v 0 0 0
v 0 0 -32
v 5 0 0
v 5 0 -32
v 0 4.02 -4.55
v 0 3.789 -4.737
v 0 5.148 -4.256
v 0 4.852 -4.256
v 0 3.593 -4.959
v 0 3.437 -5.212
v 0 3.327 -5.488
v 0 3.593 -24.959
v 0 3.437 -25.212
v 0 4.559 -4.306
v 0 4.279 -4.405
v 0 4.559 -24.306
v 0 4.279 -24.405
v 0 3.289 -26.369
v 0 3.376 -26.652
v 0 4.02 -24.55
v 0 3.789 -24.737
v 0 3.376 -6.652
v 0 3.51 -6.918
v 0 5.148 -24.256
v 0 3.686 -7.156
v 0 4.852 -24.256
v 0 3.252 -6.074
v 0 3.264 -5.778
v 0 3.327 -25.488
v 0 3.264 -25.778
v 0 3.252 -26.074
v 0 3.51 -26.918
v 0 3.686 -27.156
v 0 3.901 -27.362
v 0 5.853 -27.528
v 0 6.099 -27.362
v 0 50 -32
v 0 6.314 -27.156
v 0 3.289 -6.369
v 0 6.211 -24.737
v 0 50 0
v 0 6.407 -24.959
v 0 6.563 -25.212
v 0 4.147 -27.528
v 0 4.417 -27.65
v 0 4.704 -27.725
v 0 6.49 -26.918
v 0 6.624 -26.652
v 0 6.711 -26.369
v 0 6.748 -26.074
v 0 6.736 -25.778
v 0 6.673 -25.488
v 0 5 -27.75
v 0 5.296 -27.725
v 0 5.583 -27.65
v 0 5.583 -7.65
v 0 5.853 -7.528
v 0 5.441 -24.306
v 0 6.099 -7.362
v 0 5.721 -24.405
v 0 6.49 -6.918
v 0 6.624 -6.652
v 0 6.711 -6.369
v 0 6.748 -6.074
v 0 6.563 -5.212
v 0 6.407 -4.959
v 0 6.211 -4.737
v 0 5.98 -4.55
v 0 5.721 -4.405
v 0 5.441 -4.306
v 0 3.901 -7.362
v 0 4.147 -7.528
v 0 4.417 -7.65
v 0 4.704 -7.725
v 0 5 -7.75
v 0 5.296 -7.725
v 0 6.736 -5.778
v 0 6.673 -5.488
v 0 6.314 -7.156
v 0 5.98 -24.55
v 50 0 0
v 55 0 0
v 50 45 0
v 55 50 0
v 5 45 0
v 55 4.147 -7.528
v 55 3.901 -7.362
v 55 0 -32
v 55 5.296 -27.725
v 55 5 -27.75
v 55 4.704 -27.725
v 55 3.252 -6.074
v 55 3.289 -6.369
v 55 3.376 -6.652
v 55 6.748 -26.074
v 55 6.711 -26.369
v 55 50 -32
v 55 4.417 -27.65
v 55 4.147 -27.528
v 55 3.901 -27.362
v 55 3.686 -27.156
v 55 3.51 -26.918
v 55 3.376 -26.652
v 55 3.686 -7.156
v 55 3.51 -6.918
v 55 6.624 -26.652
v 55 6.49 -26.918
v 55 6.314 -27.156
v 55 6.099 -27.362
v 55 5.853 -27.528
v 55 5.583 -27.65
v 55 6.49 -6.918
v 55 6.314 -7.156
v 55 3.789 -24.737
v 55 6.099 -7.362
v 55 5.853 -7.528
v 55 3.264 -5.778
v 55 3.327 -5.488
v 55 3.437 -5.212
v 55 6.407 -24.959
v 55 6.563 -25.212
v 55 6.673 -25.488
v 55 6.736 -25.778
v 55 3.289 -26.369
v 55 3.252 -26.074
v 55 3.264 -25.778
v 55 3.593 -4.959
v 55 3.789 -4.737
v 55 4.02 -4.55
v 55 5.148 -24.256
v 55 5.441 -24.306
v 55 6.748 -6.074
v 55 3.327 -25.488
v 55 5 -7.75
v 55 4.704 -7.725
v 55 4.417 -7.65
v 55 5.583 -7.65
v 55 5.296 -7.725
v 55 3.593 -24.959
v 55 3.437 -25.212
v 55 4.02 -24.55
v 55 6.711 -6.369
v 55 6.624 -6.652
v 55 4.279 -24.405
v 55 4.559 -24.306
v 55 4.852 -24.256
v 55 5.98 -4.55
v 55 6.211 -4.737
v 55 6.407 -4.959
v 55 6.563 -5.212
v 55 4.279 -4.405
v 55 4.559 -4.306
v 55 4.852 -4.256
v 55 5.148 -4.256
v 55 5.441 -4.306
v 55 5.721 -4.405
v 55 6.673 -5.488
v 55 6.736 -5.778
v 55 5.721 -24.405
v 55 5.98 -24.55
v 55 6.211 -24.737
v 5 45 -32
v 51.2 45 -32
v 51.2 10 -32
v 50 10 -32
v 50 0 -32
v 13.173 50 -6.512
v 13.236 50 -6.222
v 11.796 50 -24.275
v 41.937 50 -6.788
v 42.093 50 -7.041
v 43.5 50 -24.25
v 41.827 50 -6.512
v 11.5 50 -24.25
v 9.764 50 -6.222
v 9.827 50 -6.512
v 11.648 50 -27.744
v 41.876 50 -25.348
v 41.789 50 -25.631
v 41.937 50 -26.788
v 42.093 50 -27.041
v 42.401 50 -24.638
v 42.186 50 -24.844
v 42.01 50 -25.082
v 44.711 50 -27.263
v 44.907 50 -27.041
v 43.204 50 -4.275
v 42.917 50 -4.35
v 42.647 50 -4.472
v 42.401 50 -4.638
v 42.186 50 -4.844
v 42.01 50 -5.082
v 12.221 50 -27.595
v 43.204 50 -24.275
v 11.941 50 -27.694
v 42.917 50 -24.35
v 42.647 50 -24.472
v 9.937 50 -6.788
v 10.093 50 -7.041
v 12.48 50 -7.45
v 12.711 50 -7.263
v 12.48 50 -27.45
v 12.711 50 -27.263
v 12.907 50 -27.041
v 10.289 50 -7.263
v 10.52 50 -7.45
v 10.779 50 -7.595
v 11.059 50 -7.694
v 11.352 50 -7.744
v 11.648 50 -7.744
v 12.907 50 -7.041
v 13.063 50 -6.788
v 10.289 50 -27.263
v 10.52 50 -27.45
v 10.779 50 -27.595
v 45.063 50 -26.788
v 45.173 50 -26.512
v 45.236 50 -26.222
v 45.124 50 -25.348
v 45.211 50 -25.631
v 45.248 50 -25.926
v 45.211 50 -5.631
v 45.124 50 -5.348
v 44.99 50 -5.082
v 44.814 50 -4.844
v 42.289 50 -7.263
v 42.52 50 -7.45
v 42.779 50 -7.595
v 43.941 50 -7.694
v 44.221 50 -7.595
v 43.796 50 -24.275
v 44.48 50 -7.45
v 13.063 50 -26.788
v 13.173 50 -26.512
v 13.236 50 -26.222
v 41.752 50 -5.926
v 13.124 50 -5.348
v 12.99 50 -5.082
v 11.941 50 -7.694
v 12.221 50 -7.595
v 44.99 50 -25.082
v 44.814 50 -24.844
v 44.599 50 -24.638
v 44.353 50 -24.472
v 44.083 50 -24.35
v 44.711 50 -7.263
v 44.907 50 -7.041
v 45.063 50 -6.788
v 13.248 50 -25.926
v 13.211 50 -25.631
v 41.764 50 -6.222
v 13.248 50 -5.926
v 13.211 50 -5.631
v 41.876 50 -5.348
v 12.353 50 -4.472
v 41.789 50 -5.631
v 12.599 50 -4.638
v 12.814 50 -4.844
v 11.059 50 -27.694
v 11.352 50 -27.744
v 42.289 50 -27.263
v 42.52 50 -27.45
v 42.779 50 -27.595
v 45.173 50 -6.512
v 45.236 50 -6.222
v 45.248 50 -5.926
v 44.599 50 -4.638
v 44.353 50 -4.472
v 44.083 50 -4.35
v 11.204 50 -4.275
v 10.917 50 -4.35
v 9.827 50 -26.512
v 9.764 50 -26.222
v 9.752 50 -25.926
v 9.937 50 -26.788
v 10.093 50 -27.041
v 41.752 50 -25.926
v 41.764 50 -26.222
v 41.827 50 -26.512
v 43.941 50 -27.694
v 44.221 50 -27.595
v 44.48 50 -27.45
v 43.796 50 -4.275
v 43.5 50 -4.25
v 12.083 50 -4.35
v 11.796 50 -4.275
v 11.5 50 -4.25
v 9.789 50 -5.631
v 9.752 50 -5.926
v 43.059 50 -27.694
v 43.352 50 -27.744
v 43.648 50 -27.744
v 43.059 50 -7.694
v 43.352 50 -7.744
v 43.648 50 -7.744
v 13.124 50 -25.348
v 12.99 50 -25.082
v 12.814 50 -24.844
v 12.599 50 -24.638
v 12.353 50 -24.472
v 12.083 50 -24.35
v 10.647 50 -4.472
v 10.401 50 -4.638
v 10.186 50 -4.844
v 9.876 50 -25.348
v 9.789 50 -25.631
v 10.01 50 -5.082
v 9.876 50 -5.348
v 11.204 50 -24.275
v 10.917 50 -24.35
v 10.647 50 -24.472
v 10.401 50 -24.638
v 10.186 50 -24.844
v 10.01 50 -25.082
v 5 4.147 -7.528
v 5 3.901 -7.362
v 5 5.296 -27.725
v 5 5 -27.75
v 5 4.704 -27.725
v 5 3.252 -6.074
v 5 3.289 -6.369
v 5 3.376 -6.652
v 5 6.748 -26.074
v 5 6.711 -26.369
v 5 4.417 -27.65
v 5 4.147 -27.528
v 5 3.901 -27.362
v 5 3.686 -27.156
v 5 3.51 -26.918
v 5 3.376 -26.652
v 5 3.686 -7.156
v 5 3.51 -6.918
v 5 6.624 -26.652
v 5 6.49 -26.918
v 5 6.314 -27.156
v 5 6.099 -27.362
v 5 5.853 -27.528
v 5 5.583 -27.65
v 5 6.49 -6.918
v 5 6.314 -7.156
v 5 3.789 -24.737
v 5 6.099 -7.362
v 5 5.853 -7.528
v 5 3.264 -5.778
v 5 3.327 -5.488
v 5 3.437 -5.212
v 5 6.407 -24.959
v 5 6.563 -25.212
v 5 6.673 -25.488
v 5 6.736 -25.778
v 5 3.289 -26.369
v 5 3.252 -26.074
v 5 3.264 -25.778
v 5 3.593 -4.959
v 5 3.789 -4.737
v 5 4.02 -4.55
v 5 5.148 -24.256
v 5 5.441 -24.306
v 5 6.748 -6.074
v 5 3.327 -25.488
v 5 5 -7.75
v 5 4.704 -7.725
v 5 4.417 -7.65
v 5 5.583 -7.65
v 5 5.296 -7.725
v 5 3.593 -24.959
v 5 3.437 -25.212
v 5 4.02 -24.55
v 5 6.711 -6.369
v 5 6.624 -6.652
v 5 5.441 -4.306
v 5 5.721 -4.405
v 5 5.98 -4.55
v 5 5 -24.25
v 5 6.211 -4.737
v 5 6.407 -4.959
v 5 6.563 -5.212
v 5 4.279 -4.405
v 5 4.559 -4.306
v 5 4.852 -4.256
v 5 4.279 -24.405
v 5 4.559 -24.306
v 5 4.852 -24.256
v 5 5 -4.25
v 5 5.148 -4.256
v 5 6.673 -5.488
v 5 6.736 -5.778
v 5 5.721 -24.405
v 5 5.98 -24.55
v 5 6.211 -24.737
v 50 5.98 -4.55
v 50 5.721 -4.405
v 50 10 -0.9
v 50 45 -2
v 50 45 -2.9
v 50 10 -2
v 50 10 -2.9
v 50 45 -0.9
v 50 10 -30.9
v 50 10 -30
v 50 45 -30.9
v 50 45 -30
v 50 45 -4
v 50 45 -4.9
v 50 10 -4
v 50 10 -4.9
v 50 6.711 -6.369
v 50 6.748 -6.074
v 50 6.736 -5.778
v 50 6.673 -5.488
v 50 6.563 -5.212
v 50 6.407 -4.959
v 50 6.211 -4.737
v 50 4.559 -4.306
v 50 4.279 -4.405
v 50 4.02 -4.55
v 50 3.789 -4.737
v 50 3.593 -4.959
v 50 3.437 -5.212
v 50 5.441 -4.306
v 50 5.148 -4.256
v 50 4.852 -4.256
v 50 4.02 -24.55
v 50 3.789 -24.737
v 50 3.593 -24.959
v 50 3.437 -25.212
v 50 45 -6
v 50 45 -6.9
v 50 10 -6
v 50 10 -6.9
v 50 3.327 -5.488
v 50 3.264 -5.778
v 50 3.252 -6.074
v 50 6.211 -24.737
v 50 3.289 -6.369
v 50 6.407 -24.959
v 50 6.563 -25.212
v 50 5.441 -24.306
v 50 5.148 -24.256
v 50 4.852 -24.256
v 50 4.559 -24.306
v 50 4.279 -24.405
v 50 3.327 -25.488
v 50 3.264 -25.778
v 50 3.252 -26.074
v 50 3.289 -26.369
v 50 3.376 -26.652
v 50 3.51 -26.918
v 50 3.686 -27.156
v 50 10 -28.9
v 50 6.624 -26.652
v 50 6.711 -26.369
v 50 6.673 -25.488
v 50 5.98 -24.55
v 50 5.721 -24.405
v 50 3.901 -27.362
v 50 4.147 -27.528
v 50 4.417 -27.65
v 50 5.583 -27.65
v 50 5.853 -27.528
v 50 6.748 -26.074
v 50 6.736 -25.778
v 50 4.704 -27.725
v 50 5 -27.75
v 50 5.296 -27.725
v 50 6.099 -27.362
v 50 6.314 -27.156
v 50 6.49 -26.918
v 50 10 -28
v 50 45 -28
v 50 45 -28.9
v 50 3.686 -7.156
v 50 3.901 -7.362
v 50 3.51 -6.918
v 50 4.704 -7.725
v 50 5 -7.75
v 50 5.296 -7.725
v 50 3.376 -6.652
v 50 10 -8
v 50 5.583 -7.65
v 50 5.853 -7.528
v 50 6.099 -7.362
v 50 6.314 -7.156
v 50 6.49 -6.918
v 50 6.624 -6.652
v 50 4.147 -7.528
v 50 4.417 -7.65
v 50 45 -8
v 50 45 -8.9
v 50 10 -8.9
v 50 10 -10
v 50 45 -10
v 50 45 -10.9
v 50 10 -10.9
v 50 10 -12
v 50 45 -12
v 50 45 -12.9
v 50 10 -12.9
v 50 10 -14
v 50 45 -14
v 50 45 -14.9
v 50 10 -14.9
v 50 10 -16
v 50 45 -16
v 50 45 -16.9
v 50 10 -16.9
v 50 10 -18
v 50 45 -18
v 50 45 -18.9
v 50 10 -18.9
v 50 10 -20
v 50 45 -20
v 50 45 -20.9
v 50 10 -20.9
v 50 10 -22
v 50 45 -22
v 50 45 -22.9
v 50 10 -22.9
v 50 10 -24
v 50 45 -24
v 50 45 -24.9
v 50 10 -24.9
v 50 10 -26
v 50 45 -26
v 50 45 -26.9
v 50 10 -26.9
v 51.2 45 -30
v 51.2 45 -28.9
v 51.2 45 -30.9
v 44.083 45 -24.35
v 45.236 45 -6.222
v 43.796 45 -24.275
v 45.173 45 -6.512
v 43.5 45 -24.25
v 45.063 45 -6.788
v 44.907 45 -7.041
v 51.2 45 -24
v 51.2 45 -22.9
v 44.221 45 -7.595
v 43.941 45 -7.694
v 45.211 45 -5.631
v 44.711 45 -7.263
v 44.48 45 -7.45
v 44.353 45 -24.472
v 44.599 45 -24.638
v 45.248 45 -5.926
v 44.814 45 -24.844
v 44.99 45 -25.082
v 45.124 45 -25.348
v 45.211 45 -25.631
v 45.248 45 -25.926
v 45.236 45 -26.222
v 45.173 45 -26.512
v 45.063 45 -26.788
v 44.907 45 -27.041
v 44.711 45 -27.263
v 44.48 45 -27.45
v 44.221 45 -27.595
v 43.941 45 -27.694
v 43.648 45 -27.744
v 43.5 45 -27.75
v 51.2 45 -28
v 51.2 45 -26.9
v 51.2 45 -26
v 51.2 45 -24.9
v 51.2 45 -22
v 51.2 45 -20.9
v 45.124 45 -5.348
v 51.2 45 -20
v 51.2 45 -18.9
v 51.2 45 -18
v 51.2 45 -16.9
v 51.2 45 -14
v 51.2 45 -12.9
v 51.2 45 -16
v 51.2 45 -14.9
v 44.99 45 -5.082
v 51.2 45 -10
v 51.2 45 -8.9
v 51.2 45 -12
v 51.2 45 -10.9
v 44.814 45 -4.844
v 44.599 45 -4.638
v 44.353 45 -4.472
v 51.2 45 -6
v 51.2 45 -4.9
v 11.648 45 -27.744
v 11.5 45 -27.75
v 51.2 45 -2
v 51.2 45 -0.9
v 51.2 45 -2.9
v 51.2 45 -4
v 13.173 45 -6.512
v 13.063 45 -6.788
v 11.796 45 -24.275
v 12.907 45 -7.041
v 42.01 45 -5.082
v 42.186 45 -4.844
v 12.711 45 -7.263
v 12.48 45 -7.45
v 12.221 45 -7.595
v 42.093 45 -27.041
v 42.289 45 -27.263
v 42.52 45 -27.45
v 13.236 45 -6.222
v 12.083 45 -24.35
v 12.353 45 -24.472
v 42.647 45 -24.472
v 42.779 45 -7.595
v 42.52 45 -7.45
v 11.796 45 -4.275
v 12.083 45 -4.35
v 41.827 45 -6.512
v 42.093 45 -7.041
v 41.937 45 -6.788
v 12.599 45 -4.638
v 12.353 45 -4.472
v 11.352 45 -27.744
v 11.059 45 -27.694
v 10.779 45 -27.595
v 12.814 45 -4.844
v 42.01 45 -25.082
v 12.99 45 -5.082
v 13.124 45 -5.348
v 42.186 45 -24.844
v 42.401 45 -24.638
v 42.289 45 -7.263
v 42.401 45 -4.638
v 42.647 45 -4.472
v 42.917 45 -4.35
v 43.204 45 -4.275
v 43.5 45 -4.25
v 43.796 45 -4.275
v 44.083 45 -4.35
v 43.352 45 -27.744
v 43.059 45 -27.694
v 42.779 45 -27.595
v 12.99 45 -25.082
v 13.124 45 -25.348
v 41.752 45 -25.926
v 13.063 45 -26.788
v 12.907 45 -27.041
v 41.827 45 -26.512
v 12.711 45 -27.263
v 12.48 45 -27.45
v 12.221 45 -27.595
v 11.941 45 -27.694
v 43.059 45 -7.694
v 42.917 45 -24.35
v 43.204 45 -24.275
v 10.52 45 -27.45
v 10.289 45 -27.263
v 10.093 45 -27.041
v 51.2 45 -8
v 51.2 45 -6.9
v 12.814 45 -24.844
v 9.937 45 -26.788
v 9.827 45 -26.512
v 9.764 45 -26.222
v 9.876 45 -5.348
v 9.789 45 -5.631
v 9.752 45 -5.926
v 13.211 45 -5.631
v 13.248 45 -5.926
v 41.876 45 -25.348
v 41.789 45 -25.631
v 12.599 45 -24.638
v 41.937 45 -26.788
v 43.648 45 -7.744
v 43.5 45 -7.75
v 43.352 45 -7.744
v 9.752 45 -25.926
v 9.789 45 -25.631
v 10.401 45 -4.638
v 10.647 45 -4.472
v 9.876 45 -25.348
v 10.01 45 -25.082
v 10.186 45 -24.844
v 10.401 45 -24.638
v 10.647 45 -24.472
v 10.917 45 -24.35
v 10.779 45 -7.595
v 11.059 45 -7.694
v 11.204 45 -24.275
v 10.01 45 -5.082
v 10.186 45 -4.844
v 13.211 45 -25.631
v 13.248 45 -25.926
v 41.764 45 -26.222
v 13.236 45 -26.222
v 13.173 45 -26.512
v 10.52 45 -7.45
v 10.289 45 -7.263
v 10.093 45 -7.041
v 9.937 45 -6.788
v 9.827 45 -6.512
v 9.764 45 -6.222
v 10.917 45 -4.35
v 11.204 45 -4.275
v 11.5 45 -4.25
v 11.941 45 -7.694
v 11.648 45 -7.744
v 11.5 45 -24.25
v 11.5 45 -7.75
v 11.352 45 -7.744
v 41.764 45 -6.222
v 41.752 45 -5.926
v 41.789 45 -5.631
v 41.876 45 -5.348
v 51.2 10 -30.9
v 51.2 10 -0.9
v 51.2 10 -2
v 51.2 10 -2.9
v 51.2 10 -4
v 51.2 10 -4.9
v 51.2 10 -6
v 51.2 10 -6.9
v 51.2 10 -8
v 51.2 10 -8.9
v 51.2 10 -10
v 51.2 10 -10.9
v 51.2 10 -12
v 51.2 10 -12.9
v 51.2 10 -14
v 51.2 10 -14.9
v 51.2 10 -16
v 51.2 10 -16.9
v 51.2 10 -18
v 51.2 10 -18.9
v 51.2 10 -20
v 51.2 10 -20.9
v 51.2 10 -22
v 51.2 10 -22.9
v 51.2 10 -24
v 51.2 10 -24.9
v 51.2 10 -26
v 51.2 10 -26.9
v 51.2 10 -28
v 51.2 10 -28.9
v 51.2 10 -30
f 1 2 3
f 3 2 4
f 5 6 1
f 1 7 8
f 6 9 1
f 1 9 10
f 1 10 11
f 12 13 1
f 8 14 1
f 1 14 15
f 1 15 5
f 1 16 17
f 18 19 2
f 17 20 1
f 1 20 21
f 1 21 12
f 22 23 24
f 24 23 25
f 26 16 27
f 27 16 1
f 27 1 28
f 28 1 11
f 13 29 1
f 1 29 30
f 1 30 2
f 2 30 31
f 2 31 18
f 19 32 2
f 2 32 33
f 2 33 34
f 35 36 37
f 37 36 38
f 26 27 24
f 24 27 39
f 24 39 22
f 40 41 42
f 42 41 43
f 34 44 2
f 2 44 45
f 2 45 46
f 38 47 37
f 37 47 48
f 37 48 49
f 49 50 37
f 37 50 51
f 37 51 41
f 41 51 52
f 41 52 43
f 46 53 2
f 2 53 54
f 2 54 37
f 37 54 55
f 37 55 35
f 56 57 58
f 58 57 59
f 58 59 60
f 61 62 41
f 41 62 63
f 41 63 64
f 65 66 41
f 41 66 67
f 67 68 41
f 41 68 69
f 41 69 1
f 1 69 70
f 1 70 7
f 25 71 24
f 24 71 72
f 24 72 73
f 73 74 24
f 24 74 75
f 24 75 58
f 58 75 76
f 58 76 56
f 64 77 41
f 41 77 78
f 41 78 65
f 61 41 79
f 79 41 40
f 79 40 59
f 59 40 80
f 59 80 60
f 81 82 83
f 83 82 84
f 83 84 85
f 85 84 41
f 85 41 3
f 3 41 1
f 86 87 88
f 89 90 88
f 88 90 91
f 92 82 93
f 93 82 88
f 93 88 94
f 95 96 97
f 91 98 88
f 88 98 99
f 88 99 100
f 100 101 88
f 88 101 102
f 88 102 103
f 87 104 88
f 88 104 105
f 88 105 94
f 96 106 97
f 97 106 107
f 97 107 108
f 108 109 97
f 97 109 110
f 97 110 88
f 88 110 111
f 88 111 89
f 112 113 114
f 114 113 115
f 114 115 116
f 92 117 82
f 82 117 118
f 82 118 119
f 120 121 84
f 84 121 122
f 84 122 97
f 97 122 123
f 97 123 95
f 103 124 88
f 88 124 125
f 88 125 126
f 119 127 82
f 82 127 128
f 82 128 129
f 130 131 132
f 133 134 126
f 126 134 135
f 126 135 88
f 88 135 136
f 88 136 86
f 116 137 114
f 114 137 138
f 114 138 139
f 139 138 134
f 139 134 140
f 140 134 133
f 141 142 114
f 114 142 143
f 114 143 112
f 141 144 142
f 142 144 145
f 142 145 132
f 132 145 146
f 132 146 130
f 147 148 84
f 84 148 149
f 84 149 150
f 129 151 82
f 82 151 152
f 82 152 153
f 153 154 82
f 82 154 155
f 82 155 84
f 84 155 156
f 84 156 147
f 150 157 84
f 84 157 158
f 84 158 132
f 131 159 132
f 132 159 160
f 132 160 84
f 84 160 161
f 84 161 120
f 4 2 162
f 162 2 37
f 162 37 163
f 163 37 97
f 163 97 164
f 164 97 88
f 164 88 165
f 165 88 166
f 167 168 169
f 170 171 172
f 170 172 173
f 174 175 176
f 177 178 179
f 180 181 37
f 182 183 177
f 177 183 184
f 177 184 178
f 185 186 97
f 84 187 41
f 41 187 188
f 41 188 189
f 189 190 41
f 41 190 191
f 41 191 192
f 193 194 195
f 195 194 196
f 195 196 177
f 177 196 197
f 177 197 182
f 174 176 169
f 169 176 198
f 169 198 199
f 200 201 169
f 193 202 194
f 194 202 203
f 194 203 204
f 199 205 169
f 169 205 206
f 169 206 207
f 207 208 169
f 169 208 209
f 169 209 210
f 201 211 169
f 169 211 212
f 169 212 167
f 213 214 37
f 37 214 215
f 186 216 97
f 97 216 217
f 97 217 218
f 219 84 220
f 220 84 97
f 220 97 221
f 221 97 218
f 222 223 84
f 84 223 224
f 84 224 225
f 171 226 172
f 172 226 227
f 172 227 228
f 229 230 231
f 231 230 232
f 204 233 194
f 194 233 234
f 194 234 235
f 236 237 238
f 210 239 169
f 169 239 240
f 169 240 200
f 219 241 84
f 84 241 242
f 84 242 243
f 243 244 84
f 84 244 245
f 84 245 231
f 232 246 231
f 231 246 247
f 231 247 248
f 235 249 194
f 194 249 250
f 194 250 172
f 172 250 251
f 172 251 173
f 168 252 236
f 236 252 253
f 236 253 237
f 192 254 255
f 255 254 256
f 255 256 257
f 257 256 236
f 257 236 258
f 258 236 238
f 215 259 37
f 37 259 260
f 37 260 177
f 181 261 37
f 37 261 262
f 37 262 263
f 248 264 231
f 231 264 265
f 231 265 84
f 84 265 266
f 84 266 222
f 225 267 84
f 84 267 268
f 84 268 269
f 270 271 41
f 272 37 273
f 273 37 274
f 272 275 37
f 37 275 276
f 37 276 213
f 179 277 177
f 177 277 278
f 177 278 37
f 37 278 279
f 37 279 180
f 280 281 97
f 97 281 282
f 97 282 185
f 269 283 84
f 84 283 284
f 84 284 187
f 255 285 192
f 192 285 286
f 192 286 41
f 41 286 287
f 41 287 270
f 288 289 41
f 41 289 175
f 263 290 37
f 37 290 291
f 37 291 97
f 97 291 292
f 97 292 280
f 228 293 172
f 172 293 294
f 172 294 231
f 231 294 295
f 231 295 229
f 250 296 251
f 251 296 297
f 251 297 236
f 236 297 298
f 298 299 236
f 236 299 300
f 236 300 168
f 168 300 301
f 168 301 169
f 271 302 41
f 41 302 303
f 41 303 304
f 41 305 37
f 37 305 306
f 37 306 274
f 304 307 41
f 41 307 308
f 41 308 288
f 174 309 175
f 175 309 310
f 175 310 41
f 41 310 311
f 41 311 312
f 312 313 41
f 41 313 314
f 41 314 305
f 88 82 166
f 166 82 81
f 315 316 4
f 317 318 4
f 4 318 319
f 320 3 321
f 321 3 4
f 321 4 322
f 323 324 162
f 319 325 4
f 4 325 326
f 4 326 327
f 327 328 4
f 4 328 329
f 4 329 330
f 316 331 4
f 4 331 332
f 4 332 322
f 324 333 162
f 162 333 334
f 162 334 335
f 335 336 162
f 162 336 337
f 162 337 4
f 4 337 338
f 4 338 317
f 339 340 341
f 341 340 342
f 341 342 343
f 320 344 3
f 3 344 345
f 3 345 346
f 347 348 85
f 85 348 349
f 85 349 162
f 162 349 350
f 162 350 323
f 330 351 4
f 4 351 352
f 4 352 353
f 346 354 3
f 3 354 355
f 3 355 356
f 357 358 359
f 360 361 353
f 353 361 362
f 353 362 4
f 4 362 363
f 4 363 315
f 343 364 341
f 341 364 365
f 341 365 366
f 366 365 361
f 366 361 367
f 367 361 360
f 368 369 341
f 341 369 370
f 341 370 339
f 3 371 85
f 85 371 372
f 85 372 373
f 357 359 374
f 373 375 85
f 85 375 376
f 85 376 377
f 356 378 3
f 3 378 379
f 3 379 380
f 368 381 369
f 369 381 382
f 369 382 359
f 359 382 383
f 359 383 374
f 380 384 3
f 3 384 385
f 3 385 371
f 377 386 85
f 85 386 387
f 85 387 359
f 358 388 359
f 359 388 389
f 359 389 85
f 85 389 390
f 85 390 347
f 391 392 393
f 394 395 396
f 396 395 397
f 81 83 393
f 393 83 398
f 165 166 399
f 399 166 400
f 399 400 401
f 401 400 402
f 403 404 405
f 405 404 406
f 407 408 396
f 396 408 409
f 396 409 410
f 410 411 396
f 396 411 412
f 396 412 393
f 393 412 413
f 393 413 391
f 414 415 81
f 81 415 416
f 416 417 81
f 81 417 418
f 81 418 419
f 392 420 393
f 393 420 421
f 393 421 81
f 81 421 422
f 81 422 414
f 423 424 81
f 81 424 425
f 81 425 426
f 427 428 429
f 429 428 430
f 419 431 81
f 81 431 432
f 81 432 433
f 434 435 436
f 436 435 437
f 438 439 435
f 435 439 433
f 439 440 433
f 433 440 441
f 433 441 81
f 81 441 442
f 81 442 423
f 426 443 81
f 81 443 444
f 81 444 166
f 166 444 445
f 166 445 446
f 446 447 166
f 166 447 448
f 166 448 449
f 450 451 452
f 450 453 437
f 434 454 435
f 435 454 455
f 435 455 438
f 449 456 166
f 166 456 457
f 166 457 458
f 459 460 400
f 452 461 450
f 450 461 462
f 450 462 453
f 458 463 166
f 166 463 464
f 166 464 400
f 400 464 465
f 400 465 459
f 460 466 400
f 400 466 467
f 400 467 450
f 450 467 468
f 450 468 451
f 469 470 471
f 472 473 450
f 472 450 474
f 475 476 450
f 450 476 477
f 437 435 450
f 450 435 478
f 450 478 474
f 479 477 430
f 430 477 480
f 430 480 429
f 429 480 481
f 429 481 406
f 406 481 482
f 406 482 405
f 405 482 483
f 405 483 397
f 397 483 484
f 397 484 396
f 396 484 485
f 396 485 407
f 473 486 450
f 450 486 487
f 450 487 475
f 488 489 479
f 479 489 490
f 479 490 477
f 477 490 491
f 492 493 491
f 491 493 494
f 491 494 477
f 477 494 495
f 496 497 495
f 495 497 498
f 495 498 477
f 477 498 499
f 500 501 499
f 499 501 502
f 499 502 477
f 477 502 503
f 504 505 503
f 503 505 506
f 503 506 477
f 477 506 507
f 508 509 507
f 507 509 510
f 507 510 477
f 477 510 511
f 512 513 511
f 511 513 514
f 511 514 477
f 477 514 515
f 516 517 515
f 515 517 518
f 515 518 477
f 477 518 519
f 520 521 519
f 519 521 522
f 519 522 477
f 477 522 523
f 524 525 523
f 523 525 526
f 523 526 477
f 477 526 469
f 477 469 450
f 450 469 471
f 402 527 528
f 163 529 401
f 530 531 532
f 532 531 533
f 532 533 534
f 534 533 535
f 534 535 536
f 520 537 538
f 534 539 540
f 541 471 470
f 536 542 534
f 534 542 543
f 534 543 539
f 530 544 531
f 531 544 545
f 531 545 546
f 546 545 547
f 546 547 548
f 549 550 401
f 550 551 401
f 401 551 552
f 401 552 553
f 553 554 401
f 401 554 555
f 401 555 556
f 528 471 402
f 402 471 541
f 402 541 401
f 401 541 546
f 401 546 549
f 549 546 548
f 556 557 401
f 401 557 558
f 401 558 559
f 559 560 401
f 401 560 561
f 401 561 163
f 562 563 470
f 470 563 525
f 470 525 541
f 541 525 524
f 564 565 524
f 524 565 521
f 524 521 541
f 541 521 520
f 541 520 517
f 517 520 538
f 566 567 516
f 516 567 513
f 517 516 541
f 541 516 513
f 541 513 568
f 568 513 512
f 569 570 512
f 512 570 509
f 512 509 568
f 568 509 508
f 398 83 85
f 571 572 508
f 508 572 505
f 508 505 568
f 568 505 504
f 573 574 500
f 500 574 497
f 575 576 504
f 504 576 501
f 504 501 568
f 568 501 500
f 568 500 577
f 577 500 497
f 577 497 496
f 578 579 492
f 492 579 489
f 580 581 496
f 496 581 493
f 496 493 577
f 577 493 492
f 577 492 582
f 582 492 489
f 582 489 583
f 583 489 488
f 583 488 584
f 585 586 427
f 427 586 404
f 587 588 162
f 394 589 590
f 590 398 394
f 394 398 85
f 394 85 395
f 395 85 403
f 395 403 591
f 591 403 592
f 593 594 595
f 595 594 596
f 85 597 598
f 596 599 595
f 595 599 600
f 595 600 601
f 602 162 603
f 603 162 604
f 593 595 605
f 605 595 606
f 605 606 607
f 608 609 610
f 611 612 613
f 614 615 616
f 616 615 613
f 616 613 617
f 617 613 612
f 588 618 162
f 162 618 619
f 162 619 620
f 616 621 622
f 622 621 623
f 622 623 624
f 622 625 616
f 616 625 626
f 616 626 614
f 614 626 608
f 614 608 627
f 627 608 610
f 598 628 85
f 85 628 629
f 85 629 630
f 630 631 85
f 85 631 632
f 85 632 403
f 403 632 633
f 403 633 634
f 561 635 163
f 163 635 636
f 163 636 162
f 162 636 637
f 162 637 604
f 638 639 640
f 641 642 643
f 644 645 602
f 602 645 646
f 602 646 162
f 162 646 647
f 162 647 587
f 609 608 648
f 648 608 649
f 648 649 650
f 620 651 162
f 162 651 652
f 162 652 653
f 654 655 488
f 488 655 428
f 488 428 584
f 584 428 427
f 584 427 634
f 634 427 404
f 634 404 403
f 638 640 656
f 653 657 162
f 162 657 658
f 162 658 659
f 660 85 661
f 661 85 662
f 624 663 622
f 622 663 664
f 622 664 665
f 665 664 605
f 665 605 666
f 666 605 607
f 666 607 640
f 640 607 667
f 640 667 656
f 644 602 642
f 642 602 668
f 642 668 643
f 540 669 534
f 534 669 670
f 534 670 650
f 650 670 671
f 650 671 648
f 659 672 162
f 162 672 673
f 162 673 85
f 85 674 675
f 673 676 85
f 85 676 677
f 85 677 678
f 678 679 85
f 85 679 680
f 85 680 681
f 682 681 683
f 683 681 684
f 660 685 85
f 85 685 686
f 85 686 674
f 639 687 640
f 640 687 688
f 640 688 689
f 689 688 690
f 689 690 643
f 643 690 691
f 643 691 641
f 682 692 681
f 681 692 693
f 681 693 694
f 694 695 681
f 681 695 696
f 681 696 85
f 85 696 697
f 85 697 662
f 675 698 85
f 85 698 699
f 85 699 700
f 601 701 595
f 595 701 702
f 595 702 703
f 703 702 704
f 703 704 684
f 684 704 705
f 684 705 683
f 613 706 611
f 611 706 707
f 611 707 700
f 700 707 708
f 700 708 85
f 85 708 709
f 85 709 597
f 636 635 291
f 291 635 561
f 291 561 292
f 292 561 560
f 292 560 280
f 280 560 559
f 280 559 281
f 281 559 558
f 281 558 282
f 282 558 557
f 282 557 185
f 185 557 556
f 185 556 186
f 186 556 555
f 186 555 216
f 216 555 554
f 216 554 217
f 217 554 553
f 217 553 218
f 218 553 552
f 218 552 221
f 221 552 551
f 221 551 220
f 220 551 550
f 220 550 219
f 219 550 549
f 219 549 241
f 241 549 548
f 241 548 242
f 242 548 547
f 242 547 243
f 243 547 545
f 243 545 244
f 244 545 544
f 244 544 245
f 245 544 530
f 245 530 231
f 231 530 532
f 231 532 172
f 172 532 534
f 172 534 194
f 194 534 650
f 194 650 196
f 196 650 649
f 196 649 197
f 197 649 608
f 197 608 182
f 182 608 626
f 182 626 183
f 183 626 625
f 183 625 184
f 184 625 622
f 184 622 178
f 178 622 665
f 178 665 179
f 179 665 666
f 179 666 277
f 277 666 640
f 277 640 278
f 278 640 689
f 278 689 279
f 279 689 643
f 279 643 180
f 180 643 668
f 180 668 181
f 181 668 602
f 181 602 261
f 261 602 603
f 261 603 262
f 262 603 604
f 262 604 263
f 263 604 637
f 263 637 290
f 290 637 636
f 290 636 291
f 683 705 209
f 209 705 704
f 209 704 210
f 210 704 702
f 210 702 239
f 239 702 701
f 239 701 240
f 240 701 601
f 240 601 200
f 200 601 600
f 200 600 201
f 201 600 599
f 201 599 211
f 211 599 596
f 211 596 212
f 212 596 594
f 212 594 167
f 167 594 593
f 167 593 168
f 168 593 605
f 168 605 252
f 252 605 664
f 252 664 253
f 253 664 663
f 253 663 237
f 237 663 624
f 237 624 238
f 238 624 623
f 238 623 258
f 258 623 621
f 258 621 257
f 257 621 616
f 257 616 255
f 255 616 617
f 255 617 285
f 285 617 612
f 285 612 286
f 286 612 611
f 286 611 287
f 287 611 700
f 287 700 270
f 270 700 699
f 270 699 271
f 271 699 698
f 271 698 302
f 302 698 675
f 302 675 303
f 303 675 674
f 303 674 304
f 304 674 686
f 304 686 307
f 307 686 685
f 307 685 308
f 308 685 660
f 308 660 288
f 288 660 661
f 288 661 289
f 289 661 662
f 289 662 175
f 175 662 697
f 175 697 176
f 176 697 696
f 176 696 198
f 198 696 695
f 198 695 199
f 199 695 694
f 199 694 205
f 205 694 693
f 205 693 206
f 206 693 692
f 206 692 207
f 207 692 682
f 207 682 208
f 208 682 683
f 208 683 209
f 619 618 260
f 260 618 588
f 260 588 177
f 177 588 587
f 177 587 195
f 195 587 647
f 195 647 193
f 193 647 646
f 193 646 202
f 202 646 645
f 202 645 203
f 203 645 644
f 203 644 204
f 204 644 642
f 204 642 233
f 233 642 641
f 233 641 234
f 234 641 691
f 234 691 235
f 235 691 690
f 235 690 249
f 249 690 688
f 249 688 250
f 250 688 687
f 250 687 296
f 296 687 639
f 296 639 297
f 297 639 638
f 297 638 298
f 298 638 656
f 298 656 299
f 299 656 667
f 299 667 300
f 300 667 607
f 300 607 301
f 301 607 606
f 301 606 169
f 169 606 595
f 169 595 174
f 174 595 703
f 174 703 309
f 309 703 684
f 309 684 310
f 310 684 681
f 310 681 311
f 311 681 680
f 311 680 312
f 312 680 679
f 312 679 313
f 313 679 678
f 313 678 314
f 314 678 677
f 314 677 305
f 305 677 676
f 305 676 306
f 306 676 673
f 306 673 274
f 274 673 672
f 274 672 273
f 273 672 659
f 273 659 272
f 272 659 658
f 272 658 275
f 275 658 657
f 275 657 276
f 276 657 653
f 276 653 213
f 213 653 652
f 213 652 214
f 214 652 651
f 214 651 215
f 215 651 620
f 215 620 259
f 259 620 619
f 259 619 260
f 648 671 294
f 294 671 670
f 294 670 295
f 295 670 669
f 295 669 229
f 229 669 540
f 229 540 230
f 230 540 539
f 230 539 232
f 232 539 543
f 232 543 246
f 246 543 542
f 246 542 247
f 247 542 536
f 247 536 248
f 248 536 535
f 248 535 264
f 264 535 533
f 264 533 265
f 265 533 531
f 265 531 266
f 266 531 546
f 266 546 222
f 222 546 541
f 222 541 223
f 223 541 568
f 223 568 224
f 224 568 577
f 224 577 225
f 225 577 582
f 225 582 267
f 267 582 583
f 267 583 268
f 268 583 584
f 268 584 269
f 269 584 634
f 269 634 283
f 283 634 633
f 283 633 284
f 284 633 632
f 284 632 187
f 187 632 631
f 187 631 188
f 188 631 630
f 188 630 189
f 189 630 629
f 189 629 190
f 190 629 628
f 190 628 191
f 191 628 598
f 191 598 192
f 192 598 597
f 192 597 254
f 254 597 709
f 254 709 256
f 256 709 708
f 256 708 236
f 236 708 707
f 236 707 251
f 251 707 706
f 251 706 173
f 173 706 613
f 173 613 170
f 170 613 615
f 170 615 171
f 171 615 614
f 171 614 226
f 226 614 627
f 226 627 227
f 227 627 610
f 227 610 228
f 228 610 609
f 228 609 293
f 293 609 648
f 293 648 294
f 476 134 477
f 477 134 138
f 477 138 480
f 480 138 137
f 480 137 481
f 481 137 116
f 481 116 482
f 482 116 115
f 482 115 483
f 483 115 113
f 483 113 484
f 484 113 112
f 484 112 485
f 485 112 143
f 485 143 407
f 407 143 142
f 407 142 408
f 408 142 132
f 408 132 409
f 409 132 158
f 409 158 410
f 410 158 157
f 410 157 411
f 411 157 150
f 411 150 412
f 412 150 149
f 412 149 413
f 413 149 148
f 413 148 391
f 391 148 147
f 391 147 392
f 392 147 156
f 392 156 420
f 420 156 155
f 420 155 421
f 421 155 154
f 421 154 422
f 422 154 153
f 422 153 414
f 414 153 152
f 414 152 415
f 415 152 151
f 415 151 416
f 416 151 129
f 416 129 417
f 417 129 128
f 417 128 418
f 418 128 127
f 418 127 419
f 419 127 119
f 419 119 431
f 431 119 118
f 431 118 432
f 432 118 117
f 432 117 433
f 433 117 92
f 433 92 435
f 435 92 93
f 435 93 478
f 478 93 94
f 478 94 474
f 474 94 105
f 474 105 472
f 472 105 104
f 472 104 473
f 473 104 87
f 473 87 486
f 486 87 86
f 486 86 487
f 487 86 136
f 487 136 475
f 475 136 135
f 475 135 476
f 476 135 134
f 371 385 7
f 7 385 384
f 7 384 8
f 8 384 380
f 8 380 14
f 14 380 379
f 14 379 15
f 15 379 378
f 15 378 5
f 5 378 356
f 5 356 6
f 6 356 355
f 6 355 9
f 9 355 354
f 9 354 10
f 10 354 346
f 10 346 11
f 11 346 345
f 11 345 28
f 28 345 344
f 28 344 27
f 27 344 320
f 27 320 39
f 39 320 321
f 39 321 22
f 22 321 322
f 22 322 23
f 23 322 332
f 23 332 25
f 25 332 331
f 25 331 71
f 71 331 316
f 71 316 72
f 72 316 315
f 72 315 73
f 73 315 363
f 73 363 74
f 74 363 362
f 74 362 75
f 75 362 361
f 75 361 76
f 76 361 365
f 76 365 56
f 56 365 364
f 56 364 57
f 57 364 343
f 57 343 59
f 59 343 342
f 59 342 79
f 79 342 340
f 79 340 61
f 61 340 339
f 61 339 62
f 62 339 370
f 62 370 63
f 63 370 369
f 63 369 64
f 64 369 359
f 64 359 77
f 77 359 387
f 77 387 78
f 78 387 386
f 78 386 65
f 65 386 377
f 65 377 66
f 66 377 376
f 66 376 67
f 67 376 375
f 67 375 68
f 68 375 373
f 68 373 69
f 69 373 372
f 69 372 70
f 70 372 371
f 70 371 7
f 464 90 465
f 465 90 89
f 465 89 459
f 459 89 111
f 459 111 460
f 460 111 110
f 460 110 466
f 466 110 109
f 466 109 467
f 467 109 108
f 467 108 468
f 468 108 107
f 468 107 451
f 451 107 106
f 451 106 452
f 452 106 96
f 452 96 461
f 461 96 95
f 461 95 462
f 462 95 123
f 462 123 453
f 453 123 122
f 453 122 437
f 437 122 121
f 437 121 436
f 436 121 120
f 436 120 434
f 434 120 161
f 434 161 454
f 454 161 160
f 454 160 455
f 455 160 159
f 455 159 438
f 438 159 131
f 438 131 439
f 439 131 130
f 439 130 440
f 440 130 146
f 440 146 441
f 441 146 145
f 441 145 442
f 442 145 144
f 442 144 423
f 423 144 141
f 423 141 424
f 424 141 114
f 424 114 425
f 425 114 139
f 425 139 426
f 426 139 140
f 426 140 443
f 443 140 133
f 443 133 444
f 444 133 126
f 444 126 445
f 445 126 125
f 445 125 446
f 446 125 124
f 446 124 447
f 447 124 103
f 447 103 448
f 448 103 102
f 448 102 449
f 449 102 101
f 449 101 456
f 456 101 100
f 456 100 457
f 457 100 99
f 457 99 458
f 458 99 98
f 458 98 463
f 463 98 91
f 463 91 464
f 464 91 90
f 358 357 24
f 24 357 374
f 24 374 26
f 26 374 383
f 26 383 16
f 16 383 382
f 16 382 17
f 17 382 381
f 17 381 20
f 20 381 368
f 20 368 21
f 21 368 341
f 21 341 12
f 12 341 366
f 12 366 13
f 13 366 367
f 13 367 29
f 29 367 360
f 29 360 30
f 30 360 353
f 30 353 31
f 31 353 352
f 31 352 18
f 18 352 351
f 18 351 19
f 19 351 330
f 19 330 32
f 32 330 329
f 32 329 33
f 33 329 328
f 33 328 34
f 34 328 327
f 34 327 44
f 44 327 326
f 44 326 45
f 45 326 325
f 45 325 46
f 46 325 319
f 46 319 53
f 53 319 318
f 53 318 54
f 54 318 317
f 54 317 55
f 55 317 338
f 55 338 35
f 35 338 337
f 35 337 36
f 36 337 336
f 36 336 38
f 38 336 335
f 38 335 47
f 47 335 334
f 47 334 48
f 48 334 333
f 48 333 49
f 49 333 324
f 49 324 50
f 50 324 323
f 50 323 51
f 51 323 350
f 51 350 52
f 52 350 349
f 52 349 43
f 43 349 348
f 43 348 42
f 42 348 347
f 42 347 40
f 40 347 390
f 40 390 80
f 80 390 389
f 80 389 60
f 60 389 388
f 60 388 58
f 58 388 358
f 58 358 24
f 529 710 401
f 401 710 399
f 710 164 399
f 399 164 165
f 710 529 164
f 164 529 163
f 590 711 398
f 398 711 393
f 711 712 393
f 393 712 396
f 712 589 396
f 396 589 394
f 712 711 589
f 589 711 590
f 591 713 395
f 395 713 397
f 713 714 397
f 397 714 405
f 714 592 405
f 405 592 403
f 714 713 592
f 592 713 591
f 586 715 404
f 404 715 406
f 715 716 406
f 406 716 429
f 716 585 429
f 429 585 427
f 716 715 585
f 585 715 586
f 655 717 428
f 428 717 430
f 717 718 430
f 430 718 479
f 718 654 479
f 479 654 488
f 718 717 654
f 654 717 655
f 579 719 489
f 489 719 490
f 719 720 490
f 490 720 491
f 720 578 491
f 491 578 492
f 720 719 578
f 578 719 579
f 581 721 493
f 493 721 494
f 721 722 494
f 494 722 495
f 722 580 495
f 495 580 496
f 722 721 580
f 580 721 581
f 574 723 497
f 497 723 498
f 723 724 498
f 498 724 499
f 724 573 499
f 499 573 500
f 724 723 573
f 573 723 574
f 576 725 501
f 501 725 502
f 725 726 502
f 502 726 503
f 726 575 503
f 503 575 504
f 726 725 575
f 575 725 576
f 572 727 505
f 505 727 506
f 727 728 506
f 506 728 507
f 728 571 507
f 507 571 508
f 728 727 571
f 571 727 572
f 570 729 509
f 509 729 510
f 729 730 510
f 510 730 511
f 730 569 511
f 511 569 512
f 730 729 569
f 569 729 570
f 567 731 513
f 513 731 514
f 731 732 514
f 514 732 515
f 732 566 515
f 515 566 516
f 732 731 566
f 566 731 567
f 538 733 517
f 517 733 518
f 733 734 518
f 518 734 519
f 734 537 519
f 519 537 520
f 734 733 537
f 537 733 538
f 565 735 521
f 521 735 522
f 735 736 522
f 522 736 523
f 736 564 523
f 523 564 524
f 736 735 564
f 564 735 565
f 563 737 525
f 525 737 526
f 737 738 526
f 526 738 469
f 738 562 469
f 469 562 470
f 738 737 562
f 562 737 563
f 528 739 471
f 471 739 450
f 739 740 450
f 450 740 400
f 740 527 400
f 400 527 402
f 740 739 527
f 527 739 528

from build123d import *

# Parameters (mm, degrees)
SKETCH1_W           = 55
SKETCH1_H           = 32
BOSS_EXTRUDE1_DEPTH = 50
SKETCH2_W           = 45
SKETCH2_H           = 32
CUT_EXTRUDE1_DEPTH  = 45
SKETCH3_R           = 1.75
CUT_EXTRUDE2_DEPTH  = 51
SKETCH4_R           = 1.75
CUT_EXTRUDE3_DEPTH  = 56
SKETCH5_W           = 1.1
SKETCH5_H           = 35
CUT_EXTRUDE4_DEPTH  = 1.2


with BuildPart() as part:
    # Sketch1 → Boss-Extrude1 (new body)
    with BuildSketch(Plane(origin=(0, 0, 0), x_dir=(1, 0, 0), z_dir=(0, 1, 0))):
        with Locations((27.5, 16)):
            Rectangle(SKETCH1_W, SKETCH1_H)
    extrude(amount=BOSS_EXTRUDE1_DEPTH)

    # Sketch2 → Cut-Extrude1 (cut)
    with BuildSketch(Plane.XZ):
        with Locations((27.5, -16)):
            Rectangle(SKETCH2_W, SKETCH2_H)
    extrude(amount=-CUT_EXTRUDE1_DEPTH, mode=Mode.SUBTRACT)

    # Sketch3 → Cut-Extrude2 (cut, through all)
    with BuildSketch(Plane(origin=(0, 50, 0), x_dir=(1, 0, 0), z_dir=(0, 1, 0))):
        with Locations((43.5, 26)):
            Circle(SKETCH3_R)
        with Locations((43.5, 6)):
            Circle(SKETCH3_R)
        with Locations((11.5, 26)):
            Circle(SKETCH3_R)
        with Locations((11.5, 6)):
            Circle(SKETCH3_R)
    extrude(amount=-CUT_EXTRUDE2_DEPTH, mode=Mode.SUBTRACT)

    # Sketch4 → Cut-Extrude3 (cut, through all)
    with BuildSketch(Plane(origin=(55, 0, 0), x_dir=(0, 0, -1), z_dir=(1, 0, 0))):
        with Locations((6, 5)):
            Circle(SKETCH4_R)
        with Locations((26, 5)):
            Circle(SKETCH4_R)
    extrude(amount=-CUT_EXTRUDE3_DEPTH, mode=Mode.SUBTRACT)

    # Sketch5 → Cut-Extrude4 (cut)
    with BuildSketch(Plane.ZY.offset(-50)):
        with Locations((-29.45, 27.5)):
            Rectangle(SKETCH5_W, SKETCH5_H)
        with Locations((-31.45, 27.5)):
            Rectangle(SKETCH5_W, SKETCH5_H)
        with Locations((-27.45, 27.5)):
            Rectangle(SKETCH5_W, SKETCH5_H)
        with Locations((-25.45, 27.5)):
            Rectangle(SKETCH5_W, SKETCH5_H)
        with Locations((-23.45, 27.5)):
            Rectangle(SKETCH5_W, SKETCH5_H)
        with Locations((-21.45, 27.5)):
            Rectangle(SKETCH5_W, SKETCH5_H)
        with Locations((-19.45, 27.5)):
            Rectangle(SKETCH5_W, SKETCH5_H)
        with Locations((-17.45, 27.5)):
            Rectangle(SKETCH5_W, SKETCH5_H)
        with Locations((-15.45, 27.5)):
            Rectangle(SKETCH5_W, SKETCH5_H)
        with Locations((-13.45, 27.5)):
            Rectangle(SKETCH5_W, SKETCH5_H)
        with Locations((-11.45, 27.5)):
            Rectangle(SKETCH5_W, SKETCH5_H)
        with Locations((-9.45, 27.5)):
            Rectangle(SKETCH5_W, SKETCH5_H)
        with Locations((-7.45, 27.5)):
            Rectangle(SKETCH5_W, SKETCH5_H)
        with Locations((-5.45, 27.5)):
            Rectangle(SKETCH5_W, SKETCH5_H)
        with Locations((-3.45, 27.5)):
            Rectangle(SKETCH5_W, SKETCH5_H)
        with Locations((-1.45, 27.5)):
            Rectangle(SKETCH5_W, SKETCH5_H)
        with Locations((0.55, 27.5)):
            Rectangle(SKETCH5_W, SKETCH5_H)
    extrude(amount=-CUT_EXTRUDE4_DEPTH, mode=Mode.SUBTRACT)


solid = part.part
